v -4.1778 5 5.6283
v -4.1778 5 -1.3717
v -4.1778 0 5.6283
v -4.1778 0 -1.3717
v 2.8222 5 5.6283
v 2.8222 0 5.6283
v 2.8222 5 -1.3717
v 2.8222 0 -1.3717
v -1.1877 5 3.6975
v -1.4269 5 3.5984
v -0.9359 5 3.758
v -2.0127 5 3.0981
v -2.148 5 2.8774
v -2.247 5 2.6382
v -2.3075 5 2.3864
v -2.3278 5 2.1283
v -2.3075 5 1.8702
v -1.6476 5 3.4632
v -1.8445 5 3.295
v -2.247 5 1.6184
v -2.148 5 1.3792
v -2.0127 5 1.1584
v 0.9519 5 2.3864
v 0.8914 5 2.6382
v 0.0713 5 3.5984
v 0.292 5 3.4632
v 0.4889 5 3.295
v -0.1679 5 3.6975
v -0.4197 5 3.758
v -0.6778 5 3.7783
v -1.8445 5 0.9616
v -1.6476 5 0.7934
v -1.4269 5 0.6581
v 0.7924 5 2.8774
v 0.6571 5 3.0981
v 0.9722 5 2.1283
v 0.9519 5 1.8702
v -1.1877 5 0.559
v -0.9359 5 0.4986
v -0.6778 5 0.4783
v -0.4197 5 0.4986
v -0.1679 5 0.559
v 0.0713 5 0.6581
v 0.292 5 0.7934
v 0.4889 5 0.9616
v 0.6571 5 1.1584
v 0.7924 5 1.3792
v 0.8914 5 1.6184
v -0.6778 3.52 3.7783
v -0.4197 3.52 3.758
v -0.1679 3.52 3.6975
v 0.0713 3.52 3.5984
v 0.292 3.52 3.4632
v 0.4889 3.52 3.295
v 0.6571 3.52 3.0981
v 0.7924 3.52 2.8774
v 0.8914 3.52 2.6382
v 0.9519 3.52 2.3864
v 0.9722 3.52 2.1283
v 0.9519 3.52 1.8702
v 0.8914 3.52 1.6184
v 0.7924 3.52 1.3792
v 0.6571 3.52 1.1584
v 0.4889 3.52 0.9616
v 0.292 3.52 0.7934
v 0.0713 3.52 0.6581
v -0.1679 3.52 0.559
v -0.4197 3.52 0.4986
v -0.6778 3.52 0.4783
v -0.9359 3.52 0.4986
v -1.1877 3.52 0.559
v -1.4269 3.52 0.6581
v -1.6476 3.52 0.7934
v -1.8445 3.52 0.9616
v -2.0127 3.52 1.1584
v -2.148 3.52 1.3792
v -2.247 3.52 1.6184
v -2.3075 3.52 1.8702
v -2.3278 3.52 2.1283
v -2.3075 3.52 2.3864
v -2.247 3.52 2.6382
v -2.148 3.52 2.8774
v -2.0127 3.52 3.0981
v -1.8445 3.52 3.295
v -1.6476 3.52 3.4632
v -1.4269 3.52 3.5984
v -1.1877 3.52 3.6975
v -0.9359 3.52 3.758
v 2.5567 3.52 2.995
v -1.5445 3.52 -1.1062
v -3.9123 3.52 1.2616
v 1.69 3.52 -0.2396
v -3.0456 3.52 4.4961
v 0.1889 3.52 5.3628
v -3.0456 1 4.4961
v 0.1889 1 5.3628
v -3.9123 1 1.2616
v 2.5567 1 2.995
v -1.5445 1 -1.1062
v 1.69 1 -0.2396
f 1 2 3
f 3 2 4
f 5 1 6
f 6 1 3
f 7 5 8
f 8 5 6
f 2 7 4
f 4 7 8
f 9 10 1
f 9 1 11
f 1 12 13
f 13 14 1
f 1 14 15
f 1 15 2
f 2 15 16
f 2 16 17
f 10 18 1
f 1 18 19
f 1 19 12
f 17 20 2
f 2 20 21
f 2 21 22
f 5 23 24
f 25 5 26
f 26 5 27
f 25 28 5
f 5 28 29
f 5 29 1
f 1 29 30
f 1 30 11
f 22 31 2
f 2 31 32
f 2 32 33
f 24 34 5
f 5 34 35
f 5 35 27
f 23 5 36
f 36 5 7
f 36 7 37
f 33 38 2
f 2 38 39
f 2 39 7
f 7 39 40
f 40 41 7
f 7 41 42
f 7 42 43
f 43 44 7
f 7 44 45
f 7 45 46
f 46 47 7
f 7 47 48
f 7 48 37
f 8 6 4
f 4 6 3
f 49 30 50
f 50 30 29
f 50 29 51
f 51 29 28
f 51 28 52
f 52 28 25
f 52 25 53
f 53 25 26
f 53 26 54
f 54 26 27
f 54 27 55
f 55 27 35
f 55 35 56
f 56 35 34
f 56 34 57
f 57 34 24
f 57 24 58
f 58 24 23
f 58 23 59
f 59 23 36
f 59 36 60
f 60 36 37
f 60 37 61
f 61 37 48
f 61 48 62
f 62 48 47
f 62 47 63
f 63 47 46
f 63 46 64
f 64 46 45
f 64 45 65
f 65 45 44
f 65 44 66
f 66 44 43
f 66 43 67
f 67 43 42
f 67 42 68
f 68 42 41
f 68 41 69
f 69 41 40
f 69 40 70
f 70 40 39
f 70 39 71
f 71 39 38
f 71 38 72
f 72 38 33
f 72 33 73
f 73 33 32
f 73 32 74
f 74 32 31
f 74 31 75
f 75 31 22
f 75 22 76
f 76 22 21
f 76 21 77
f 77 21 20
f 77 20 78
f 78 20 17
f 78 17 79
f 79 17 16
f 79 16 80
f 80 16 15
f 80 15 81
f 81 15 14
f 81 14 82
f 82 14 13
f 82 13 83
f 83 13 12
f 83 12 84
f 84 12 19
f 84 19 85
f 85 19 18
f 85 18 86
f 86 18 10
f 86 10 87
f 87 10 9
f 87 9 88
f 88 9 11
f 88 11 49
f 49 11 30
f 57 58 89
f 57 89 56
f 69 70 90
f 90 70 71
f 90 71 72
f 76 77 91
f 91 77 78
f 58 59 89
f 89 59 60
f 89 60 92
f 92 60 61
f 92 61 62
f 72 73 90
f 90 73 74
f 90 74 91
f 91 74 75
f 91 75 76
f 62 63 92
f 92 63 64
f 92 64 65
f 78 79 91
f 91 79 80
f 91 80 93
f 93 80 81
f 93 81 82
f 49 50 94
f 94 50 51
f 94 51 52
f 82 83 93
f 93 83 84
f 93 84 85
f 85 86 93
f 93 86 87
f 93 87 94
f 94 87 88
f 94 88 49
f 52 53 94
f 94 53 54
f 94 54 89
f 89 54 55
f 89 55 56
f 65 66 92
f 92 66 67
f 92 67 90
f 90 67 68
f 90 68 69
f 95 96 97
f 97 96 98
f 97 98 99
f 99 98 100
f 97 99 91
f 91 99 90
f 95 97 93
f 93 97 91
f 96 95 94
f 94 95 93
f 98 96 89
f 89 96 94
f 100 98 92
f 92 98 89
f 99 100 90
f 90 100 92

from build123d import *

# Parameters (mm, degrees)
SKETCH1_W           = 7
SKETCH1_H           = 7
BOSS_EXTRUDE1_DEPTH = 5
SKETCH4_R           = 1.65
CUT_EXTRUDE4_DEPTH  = 4
SKETCH6_R           = 1.65
CUT_EXTRUDE6_DEPTH  = 4
SKETCH6_4_R         = 1.65
BOSS_EXTRUDE2_DEPTH = 1.48


with BuildPart() as part:
    # Sketch1 → Boss-Extrude1 (new body)
    with BuildSketch(Plane(origin=(0, 0, 0), x_dir=(1, 0, 0), z_dir=(0, 1, 0))):
        with Locations((-0.67779661, -2.128287226)):
            Rectangle(SKETCH1_W, SKETCH1_H)
    extrude(amount=BOSS_EXTRUDE1_DEPTH)

    # Sketch4 → Cut-Extrude4 (cut)
    with BuildSketch(Plane(origin=(0, 5, 0), x_dir=(1, 0, 0), z_dir=(0, 1, 0))):
        Polygon((-1.544486233, 1.106242481), (-3.912326317, -1.261597603), (-3.045636694, -4.496127311), (0.188893013, -5.362816934), (2.556733098, -2.99497685), (1.690043475, 0.239552858), align=None)
        with Locations((-0.67779661, -2.128287226)):
            Circle(SKETCH4_R, mode=Mode.SUBTRACT)
    extrude(amount=-CUT_EXTRUDE4_DEPTH, mode=Mode.SUBTRACT)

    # Sketch6 → Cut-Extrude6 (cut)
    with BuildSketch(Plane(origin=(0, 5, 0), x_dir=(1, 0, 0), z_dir=(0, 1, 0))):
        with Locations((-0.67779661, -2.128287226)):
            Circle(SKETCH6_R)
    extrude(amount=-CUT_EXTRUDE6_DEPTH, mode=Mode.SUBTRACT)

    # Sketch6<4> → Boss-Extrude2 (add)
    with BuildSketch(Plane(origin=(0, 5, 0), x_dir=(1, 0, 0), z_dir=(0, 1, 0))):
        Polygon((-1.544486233, 1.106242481), (-3.912326317, -1.261597603), (-3.045636694, -4.496127311), (0.188893013, -5.362816934), (2.556733098, -2.99497685), (1.690043475, 0.239552858), align=None)
        with Locations((-0.67779661, -2.128287226)):
            Circle(SKETCH6_4_R, mode=Mode.SUBTRACT)
    extrude(amount=-BOSS_EXTRUDE2_DEPTH)


solid = part.part
